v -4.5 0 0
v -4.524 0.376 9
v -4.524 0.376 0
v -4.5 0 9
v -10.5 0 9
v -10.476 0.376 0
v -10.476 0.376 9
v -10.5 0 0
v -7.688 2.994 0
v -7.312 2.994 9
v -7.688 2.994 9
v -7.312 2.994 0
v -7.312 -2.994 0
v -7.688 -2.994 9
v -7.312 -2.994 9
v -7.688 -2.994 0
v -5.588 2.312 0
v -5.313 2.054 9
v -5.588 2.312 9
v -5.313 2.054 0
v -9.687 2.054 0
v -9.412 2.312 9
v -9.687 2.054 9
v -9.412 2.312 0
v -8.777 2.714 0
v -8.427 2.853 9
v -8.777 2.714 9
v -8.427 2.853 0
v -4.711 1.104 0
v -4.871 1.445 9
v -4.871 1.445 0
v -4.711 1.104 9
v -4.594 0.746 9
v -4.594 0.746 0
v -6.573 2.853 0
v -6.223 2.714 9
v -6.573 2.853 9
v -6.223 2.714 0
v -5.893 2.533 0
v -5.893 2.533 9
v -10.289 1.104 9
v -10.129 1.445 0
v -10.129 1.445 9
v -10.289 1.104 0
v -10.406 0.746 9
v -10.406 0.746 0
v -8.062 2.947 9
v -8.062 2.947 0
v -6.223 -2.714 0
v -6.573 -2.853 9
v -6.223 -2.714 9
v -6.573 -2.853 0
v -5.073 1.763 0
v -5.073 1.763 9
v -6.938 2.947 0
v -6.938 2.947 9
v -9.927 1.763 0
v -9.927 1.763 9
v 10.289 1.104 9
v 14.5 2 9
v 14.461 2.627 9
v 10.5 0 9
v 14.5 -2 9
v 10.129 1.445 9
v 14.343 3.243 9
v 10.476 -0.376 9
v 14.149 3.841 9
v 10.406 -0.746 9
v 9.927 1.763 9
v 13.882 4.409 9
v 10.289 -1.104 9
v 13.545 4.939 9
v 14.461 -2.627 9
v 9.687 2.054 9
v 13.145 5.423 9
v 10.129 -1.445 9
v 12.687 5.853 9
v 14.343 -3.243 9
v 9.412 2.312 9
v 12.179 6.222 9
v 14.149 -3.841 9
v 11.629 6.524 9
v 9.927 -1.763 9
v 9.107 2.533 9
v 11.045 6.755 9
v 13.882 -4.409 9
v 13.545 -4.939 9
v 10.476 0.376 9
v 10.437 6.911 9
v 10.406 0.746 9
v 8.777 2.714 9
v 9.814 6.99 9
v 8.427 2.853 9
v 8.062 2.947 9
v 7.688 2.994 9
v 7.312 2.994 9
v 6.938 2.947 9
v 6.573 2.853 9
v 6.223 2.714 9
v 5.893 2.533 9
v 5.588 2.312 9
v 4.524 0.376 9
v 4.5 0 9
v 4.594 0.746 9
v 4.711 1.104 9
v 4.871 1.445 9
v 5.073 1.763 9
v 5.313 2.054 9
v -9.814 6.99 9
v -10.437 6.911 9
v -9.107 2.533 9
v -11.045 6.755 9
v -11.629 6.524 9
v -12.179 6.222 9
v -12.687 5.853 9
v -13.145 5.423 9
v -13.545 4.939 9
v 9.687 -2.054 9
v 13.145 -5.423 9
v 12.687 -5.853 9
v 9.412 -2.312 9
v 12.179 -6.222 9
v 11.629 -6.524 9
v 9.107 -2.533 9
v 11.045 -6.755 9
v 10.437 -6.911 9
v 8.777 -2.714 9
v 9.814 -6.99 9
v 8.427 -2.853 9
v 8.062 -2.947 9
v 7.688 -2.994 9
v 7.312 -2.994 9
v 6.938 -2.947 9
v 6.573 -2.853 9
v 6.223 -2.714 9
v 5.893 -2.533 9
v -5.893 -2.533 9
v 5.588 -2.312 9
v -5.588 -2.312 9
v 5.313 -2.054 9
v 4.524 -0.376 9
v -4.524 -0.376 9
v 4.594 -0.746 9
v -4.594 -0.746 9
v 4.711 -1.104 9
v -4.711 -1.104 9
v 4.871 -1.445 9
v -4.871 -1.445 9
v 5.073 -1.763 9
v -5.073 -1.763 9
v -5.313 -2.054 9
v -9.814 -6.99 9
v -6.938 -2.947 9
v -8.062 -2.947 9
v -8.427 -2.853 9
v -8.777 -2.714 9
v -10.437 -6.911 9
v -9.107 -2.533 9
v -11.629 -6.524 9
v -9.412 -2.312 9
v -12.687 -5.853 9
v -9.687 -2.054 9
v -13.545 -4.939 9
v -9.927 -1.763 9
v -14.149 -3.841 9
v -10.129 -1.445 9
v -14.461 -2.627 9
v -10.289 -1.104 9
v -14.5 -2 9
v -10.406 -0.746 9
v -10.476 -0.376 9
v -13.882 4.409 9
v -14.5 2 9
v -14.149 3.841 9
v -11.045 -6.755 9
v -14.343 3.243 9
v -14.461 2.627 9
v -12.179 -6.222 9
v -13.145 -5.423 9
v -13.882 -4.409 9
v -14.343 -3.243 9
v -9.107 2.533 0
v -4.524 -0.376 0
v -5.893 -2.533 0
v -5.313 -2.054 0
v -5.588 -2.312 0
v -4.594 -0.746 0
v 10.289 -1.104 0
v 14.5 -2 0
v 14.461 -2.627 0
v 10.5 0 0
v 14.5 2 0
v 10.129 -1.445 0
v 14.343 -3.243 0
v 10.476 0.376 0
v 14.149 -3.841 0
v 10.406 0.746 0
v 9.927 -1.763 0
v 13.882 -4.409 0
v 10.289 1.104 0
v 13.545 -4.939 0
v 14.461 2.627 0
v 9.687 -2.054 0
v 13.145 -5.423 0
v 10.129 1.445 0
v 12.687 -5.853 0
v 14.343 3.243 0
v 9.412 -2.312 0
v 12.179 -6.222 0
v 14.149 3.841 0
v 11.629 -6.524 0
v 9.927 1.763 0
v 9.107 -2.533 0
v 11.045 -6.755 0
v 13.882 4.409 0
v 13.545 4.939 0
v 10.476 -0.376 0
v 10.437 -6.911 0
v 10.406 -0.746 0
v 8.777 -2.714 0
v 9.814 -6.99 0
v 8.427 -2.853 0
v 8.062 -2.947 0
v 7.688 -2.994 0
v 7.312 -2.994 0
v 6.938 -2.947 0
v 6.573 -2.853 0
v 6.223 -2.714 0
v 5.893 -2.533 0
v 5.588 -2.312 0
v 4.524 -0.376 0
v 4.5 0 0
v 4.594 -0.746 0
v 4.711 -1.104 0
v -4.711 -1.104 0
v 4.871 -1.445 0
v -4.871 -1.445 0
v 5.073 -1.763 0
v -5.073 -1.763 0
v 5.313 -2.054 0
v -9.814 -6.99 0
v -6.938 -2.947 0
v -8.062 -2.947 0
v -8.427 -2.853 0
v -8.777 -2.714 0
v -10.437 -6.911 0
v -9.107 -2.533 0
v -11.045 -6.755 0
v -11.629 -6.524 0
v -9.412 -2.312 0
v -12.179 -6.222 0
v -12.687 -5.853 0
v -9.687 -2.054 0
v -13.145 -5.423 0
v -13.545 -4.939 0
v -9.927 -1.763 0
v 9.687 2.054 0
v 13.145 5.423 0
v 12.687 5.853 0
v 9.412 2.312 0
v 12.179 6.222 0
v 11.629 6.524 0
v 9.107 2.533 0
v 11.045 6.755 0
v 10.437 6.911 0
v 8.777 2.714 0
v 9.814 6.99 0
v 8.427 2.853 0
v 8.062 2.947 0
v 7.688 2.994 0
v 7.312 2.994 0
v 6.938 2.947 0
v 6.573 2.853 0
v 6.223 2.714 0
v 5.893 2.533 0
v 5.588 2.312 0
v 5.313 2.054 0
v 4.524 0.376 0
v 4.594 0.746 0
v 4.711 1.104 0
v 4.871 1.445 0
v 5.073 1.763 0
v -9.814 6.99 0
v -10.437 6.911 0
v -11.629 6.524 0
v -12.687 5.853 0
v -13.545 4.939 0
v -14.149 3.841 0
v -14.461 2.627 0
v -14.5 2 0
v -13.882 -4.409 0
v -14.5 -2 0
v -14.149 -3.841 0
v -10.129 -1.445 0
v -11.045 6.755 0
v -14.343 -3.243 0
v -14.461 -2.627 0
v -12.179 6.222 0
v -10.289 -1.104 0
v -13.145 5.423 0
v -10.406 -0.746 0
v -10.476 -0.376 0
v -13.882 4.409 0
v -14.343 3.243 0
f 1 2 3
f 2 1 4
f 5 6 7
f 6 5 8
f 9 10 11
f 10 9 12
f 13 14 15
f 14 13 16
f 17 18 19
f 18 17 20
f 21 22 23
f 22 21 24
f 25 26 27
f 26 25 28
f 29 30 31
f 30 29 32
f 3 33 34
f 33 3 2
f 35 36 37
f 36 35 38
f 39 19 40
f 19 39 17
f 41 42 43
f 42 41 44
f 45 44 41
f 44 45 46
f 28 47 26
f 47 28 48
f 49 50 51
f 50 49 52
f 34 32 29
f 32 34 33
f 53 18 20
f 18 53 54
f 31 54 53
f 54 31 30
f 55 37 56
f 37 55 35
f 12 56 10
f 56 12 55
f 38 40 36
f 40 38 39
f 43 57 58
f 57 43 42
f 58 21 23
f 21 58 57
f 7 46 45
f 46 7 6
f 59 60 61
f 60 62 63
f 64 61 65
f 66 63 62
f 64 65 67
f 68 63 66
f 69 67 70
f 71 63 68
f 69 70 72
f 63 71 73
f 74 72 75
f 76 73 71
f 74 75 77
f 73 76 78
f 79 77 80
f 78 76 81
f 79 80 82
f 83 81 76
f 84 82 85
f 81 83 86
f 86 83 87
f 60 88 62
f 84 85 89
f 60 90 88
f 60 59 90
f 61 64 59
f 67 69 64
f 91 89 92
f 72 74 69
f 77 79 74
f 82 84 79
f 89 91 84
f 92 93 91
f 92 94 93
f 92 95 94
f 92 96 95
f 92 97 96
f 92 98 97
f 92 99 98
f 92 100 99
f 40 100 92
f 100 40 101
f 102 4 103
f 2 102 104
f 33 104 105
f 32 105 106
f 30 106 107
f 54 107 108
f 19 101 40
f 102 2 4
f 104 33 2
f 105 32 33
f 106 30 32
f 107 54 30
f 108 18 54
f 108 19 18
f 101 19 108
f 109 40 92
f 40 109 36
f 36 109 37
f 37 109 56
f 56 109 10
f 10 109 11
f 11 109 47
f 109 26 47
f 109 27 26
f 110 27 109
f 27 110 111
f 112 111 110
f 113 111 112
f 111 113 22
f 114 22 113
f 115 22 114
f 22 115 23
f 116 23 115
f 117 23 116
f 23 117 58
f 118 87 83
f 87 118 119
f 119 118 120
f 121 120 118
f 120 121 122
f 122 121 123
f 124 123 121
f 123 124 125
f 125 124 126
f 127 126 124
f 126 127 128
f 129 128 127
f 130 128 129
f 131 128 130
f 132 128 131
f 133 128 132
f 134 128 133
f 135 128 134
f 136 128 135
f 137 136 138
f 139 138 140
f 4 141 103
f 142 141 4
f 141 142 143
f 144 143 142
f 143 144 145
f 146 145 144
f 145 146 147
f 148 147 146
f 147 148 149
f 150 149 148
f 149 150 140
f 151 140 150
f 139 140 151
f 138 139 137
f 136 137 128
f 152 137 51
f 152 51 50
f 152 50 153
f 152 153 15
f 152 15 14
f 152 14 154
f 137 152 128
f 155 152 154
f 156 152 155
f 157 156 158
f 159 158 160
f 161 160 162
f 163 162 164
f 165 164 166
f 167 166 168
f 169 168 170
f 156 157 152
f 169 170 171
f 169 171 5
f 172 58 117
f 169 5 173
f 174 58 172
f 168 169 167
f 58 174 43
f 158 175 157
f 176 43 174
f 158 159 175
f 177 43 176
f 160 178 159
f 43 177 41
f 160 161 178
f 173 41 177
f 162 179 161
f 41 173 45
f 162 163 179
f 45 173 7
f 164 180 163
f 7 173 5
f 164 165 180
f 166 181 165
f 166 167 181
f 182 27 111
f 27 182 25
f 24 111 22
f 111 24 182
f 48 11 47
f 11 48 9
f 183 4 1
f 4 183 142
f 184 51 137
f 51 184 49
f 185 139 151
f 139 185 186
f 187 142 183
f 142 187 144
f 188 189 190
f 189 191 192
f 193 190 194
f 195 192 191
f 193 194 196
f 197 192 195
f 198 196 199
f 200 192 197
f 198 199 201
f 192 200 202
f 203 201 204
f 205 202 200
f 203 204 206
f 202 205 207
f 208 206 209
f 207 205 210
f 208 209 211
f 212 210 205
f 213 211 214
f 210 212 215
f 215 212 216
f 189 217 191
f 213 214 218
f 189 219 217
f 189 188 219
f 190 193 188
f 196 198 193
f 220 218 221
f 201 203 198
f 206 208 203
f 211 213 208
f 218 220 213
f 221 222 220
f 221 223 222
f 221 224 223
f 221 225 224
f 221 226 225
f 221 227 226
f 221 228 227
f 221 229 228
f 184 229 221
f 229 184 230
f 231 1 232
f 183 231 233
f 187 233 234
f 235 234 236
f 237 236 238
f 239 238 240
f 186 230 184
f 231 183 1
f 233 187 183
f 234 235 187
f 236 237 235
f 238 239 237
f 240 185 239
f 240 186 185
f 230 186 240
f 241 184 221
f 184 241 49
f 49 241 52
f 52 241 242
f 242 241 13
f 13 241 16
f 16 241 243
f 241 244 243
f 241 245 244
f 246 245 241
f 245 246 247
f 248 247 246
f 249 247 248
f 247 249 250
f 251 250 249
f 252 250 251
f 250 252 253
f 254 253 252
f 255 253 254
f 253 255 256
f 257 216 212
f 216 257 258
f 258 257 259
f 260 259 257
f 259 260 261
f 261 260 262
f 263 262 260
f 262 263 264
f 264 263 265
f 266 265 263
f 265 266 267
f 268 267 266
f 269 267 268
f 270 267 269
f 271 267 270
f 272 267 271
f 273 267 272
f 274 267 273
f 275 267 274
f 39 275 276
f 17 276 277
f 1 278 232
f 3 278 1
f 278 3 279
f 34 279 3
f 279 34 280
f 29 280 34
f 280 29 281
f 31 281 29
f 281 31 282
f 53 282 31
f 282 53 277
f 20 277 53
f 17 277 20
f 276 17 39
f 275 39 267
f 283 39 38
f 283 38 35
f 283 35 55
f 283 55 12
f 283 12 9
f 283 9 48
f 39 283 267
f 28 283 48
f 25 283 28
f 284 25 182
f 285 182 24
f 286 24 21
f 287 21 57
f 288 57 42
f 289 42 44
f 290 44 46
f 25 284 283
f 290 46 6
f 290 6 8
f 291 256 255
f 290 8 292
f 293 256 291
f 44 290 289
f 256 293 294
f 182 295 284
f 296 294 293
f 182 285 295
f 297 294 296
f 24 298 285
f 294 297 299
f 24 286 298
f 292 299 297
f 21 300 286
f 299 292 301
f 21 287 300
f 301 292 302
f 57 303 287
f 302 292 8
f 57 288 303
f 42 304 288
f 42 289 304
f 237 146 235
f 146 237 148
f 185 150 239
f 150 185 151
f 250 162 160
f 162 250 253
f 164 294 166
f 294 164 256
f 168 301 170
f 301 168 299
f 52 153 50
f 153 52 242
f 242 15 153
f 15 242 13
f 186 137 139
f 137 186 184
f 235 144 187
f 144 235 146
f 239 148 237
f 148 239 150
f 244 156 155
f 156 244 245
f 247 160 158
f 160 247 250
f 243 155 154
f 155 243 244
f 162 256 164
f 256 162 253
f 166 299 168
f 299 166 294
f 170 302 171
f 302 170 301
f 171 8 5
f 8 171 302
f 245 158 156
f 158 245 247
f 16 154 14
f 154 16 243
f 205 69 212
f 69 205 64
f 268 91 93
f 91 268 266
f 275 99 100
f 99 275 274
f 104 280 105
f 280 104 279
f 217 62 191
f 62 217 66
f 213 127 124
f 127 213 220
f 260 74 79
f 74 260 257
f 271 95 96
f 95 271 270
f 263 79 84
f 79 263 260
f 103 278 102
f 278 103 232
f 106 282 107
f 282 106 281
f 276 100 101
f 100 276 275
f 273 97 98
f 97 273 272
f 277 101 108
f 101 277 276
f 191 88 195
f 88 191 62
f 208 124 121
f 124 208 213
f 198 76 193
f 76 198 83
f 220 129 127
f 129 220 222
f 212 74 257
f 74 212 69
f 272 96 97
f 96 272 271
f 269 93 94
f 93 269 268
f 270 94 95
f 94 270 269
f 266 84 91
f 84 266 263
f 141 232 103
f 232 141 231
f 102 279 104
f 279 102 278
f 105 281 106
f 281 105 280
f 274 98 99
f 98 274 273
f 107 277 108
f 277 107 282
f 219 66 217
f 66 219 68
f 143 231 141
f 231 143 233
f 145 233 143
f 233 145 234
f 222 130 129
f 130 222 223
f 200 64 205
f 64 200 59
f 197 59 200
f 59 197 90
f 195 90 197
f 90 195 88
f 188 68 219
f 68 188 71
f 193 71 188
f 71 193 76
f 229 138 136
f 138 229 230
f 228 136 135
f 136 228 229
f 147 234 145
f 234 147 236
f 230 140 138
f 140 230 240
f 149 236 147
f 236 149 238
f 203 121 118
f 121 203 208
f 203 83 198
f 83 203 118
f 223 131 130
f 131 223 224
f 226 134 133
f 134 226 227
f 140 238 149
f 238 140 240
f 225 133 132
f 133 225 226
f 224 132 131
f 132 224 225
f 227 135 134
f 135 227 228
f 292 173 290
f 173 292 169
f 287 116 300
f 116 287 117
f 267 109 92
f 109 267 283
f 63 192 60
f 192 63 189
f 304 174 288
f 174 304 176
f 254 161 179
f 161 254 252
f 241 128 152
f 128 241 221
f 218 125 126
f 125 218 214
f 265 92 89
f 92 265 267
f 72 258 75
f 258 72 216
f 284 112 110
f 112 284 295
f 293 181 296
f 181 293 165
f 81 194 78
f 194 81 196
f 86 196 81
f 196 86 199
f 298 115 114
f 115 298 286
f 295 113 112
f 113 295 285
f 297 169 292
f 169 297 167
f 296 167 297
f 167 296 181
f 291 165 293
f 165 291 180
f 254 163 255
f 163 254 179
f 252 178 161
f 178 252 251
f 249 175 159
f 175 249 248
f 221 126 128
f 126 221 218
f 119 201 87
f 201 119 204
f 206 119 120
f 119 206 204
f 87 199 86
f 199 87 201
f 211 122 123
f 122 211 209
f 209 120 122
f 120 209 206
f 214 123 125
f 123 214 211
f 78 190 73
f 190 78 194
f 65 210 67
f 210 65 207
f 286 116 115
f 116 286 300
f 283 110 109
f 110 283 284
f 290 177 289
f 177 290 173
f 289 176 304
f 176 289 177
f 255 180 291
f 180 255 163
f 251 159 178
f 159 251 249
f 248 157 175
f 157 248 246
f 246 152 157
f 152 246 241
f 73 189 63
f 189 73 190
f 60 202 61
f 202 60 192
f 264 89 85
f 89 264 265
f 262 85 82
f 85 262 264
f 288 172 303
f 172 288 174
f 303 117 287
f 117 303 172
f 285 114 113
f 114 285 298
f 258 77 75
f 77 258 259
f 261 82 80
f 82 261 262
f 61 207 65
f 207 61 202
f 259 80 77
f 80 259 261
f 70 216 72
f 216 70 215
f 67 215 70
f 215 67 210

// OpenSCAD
$fn = 50;


difference() {
	union() {
		hull() {
			translate(v = [-9.5000000000, 2.0000000000, 0]) {
				cylinder(h = 9, r = 5);
			}
			translate(v = [9.5000000000, 2.0000000000, 0]) {
				cylinder(h = 9, r = 5);
			}
			translate(v = [-9.5000000000, -2.0000000000, 0]) {
				cylinder(h = 9, r = 5);
			}
			translate(v = [9.5000000000, -2.0000000000, 0]) {
				cylinder(h = 9, r = 5);
			}
		}
	}
	union() {
		translate(v = [-7.5000000000, 0.0000000000, 0]) {
			cylinder(h = 9, r = 3.0000000000);
		}
		translate(v = [7.5000000000, 0.0000000000, 0]) {
			cylinder(h = 9, r = 3.0000000000);
		}
		translate(v = [-7.5000000000, 0.0000000000, 0]) {
			cylinder(h = 9, r = 1.5000000000);
		}
		translate(v = [7.5000000000, 0.0000000000, 0]) {
			cylinder(h = 9, r = 1.5000000000);
		}
		translate(v = [-7.5000000000, 0.0000000000, 0]) {
			cylinder(h = 9, r = 1.5000000000);
		}
		translate(v = [7.5000000000, 0.0000000000, 0]) {
			cylinder(h = 9, r = 1.5000000000);
		}
		translate(v = [-7.5000000000, 0.0000000000, 0]) {
			cylinder(h = 9, r = 1.5000000000);
		}
		translate(v = [7.5000000000, 0.0000000000, 0]) {
			cylinder(h = 9, r = 1.5000000000);
		}
	}
}
